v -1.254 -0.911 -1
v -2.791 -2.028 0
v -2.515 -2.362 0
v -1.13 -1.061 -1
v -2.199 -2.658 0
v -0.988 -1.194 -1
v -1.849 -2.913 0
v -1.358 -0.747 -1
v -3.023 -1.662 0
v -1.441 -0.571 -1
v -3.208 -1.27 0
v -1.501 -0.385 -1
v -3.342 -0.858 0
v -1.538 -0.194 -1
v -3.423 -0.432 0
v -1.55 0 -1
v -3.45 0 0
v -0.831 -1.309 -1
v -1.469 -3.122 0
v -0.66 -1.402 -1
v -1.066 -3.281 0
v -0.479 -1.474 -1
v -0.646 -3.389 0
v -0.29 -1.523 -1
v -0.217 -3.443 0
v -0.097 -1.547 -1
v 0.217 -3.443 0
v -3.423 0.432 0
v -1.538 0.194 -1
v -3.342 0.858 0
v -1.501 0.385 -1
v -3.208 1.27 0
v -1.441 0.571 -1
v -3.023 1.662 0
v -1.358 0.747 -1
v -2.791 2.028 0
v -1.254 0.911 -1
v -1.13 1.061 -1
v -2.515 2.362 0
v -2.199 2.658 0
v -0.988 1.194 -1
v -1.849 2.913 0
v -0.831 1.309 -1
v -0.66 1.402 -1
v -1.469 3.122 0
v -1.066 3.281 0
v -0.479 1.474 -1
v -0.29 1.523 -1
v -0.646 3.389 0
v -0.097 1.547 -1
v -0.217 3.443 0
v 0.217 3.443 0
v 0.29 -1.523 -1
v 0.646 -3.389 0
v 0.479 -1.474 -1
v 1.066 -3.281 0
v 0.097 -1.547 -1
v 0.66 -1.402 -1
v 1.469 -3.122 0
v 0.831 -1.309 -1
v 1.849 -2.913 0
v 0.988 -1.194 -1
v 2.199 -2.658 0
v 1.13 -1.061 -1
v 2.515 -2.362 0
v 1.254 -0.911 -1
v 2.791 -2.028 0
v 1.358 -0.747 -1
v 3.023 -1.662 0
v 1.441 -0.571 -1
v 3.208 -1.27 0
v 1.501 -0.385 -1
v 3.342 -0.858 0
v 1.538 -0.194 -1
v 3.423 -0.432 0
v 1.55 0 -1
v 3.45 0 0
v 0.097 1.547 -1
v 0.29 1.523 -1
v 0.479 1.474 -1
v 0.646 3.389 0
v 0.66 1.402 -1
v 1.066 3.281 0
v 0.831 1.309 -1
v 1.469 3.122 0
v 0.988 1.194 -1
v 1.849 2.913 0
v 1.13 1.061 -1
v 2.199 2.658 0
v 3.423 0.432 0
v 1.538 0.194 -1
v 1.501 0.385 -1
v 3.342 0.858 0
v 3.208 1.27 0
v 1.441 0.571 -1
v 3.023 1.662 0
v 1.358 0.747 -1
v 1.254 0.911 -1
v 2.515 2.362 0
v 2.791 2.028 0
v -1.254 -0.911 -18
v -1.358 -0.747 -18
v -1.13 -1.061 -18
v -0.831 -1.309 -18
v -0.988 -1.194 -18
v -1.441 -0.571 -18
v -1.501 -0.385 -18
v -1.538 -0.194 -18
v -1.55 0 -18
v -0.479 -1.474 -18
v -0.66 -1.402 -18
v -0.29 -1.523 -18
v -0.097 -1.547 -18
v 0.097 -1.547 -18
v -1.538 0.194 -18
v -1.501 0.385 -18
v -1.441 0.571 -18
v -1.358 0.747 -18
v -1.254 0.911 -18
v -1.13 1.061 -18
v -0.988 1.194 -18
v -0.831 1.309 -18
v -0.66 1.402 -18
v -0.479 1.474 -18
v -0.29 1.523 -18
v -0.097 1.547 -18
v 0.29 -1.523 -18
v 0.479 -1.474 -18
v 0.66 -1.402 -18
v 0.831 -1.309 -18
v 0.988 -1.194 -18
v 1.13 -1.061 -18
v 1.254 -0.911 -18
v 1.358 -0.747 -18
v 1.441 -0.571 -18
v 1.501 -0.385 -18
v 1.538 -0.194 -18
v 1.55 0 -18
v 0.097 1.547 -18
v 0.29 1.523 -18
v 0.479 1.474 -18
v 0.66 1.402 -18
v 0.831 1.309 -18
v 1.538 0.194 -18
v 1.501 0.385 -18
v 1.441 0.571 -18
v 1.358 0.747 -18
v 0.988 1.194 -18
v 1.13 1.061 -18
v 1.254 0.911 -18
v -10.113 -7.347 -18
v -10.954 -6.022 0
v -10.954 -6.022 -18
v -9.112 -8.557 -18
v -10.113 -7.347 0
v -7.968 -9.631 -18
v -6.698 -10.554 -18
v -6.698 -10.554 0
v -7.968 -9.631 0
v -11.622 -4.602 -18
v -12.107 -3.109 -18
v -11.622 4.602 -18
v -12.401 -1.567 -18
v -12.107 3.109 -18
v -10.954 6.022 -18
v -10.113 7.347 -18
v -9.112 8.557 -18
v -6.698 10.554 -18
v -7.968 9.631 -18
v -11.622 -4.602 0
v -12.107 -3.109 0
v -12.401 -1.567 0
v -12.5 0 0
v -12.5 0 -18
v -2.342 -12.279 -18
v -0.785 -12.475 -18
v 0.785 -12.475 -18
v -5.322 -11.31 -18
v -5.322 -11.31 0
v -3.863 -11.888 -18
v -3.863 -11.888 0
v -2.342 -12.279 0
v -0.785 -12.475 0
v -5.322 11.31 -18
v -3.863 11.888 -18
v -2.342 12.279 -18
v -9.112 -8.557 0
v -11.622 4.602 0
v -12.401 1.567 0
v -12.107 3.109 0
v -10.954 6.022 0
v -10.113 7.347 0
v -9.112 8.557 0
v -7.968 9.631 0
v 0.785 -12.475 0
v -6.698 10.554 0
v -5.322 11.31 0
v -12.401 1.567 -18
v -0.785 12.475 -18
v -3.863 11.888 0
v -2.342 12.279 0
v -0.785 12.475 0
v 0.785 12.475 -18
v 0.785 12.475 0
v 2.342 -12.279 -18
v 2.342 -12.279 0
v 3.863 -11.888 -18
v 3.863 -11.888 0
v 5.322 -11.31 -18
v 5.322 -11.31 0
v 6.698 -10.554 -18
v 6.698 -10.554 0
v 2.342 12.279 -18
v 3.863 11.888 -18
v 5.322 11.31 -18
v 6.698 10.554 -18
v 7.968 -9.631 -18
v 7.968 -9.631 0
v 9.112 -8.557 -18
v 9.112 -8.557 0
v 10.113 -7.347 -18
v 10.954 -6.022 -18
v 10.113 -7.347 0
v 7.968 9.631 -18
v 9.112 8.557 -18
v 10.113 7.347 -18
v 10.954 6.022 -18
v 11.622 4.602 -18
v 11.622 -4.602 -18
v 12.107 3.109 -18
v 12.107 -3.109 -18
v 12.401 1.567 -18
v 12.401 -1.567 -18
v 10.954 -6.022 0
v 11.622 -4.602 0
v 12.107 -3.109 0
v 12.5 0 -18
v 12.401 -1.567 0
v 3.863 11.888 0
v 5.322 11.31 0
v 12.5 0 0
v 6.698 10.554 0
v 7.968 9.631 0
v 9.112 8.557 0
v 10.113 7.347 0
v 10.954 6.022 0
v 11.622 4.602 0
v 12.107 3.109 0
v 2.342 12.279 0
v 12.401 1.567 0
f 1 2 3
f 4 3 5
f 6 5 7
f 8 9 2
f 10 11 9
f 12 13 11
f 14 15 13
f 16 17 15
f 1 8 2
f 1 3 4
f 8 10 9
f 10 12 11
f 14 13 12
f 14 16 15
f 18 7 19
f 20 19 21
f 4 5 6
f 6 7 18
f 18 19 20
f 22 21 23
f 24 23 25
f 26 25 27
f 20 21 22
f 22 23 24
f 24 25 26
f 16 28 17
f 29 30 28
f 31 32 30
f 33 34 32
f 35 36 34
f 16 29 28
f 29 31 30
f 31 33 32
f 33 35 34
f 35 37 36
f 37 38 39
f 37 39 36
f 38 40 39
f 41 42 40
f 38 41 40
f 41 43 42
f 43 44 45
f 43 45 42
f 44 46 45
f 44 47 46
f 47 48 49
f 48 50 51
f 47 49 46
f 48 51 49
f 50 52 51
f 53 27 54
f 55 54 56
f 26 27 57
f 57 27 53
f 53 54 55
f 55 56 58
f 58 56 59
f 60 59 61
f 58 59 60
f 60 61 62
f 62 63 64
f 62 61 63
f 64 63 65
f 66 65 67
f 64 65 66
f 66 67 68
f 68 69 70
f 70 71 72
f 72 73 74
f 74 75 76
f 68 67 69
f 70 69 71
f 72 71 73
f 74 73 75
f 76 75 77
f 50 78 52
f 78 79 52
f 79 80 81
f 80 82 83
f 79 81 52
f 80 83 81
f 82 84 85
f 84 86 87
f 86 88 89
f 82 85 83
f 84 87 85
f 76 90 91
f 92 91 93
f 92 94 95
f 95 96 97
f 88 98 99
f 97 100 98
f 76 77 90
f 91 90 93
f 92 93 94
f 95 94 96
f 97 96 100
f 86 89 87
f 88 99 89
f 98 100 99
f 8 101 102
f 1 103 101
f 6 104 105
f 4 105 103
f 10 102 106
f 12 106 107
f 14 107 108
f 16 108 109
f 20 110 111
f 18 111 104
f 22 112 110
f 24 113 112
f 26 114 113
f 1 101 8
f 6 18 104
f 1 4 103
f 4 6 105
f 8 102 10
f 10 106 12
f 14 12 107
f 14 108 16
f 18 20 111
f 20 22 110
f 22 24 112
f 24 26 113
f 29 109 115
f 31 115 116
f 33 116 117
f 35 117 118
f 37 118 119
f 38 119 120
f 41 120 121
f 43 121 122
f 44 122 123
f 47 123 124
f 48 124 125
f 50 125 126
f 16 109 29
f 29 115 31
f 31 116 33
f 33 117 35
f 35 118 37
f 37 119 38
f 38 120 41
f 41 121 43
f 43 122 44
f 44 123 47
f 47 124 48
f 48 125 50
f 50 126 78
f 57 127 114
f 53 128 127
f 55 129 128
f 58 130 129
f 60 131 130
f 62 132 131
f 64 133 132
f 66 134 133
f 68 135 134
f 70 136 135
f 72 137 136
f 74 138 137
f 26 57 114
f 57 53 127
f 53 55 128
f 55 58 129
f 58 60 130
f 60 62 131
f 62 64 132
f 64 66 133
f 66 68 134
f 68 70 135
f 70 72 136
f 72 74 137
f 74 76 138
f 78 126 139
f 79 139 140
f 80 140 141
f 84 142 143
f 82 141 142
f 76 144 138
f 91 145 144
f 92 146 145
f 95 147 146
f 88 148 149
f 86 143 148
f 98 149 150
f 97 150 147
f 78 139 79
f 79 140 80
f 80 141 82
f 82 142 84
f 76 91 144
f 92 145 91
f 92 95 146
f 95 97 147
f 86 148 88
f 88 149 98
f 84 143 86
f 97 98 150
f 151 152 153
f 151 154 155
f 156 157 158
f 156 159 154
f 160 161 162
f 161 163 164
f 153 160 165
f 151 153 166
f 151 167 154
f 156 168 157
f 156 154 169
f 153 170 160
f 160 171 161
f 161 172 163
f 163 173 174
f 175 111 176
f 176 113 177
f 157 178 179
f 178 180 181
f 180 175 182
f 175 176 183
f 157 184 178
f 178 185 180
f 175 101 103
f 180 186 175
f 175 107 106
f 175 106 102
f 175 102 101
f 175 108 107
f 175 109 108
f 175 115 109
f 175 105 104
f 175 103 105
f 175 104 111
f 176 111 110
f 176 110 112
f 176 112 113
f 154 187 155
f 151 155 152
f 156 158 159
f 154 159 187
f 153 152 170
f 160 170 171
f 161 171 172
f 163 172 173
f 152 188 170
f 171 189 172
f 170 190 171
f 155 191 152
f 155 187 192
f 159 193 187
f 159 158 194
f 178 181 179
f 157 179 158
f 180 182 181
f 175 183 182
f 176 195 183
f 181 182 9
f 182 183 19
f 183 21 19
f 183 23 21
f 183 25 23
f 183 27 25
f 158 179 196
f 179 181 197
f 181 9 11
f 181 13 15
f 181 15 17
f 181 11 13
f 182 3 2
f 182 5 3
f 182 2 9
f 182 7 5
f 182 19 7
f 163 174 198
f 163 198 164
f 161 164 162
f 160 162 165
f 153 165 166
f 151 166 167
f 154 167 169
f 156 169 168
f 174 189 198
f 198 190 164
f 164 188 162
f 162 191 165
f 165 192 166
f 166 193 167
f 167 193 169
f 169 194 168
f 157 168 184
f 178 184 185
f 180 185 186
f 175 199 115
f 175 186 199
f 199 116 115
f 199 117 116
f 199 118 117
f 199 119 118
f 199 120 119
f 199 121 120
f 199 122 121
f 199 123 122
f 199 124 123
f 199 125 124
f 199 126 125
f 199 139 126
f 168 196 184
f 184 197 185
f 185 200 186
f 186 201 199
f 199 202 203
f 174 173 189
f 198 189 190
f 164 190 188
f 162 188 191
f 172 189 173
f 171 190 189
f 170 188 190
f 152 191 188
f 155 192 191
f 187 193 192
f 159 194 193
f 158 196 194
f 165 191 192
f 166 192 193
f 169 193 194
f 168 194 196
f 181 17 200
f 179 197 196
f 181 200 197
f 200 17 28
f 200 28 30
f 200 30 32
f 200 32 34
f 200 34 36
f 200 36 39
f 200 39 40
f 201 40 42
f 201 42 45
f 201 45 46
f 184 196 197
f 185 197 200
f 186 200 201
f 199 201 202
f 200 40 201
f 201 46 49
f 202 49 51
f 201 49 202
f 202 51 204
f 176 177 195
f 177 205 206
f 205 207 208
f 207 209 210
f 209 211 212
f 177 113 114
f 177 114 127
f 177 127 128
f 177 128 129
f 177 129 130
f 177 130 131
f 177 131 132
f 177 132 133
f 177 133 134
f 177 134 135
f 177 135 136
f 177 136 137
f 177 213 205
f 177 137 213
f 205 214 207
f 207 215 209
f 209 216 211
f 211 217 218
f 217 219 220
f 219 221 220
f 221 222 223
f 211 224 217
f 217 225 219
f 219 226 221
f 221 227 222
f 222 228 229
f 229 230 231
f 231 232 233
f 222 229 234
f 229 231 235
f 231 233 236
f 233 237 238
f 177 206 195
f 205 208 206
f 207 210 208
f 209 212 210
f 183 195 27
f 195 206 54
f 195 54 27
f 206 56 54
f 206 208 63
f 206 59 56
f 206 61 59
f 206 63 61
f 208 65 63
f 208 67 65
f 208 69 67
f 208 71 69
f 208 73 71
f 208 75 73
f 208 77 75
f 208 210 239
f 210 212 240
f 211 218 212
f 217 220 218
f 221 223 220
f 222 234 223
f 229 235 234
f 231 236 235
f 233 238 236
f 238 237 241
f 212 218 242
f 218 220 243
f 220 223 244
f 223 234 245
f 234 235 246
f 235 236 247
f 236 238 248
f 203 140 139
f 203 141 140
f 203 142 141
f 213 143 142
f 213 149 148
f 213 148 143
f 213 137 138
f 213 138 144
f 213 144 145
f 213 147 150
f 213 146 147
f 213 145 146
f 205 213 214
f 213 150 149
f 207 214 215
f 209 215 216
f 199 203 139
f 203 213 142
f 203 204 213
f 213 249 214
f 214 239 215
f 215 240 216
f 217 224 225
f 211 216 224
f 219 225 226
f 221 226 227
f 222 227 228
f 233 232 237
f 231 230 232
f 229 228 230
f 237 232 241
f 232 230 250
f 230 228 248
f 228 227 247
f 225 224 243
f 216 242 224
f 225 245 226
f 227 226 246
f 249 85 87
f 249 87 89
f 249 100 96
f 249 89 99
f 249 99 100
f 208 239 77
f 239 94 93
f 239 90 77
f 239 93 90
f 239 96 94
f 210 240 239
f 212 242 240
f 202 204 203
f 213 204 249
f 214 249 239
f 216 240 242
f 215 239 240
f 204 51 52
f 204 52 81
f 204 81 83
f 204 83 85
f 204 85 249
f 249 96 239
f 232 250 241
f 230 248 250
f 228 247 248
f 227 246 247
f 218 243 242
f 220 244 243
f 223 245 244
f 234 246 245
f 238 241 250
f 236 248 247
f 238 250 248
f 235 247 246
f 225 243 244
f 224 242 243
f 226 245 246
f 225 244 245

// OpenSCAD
$fn = 50;

difference() {
	union() {
		translate(v = [0, 0, -18.0]) {
			cylinder(h = 18, r = 12.5);
		}
	}
	union() {
		translate(v = [0, 0, 0]) {
			rotate(a = [0, 0, 0]) {
				difference() {
					union() {
						translate(v = [0, 0, -21.0]) {
							cylinder(h = 21, r = 1.25);
						}
						translate(v = [0, 0, -1.0]) {
							cylinder(h = 1.0, r1 = 1.55, r2 = 3.45);
						}
						translate(v = [0, 0, -21.0]) {
							cylinder(h = 21, r = 1.55);
						}
						translate(v = [0, 0, -21.0]) {
							cylinder(h = 21, r = 1.25);
						}
					}
					union();
				}
			}
		}
	}
}
